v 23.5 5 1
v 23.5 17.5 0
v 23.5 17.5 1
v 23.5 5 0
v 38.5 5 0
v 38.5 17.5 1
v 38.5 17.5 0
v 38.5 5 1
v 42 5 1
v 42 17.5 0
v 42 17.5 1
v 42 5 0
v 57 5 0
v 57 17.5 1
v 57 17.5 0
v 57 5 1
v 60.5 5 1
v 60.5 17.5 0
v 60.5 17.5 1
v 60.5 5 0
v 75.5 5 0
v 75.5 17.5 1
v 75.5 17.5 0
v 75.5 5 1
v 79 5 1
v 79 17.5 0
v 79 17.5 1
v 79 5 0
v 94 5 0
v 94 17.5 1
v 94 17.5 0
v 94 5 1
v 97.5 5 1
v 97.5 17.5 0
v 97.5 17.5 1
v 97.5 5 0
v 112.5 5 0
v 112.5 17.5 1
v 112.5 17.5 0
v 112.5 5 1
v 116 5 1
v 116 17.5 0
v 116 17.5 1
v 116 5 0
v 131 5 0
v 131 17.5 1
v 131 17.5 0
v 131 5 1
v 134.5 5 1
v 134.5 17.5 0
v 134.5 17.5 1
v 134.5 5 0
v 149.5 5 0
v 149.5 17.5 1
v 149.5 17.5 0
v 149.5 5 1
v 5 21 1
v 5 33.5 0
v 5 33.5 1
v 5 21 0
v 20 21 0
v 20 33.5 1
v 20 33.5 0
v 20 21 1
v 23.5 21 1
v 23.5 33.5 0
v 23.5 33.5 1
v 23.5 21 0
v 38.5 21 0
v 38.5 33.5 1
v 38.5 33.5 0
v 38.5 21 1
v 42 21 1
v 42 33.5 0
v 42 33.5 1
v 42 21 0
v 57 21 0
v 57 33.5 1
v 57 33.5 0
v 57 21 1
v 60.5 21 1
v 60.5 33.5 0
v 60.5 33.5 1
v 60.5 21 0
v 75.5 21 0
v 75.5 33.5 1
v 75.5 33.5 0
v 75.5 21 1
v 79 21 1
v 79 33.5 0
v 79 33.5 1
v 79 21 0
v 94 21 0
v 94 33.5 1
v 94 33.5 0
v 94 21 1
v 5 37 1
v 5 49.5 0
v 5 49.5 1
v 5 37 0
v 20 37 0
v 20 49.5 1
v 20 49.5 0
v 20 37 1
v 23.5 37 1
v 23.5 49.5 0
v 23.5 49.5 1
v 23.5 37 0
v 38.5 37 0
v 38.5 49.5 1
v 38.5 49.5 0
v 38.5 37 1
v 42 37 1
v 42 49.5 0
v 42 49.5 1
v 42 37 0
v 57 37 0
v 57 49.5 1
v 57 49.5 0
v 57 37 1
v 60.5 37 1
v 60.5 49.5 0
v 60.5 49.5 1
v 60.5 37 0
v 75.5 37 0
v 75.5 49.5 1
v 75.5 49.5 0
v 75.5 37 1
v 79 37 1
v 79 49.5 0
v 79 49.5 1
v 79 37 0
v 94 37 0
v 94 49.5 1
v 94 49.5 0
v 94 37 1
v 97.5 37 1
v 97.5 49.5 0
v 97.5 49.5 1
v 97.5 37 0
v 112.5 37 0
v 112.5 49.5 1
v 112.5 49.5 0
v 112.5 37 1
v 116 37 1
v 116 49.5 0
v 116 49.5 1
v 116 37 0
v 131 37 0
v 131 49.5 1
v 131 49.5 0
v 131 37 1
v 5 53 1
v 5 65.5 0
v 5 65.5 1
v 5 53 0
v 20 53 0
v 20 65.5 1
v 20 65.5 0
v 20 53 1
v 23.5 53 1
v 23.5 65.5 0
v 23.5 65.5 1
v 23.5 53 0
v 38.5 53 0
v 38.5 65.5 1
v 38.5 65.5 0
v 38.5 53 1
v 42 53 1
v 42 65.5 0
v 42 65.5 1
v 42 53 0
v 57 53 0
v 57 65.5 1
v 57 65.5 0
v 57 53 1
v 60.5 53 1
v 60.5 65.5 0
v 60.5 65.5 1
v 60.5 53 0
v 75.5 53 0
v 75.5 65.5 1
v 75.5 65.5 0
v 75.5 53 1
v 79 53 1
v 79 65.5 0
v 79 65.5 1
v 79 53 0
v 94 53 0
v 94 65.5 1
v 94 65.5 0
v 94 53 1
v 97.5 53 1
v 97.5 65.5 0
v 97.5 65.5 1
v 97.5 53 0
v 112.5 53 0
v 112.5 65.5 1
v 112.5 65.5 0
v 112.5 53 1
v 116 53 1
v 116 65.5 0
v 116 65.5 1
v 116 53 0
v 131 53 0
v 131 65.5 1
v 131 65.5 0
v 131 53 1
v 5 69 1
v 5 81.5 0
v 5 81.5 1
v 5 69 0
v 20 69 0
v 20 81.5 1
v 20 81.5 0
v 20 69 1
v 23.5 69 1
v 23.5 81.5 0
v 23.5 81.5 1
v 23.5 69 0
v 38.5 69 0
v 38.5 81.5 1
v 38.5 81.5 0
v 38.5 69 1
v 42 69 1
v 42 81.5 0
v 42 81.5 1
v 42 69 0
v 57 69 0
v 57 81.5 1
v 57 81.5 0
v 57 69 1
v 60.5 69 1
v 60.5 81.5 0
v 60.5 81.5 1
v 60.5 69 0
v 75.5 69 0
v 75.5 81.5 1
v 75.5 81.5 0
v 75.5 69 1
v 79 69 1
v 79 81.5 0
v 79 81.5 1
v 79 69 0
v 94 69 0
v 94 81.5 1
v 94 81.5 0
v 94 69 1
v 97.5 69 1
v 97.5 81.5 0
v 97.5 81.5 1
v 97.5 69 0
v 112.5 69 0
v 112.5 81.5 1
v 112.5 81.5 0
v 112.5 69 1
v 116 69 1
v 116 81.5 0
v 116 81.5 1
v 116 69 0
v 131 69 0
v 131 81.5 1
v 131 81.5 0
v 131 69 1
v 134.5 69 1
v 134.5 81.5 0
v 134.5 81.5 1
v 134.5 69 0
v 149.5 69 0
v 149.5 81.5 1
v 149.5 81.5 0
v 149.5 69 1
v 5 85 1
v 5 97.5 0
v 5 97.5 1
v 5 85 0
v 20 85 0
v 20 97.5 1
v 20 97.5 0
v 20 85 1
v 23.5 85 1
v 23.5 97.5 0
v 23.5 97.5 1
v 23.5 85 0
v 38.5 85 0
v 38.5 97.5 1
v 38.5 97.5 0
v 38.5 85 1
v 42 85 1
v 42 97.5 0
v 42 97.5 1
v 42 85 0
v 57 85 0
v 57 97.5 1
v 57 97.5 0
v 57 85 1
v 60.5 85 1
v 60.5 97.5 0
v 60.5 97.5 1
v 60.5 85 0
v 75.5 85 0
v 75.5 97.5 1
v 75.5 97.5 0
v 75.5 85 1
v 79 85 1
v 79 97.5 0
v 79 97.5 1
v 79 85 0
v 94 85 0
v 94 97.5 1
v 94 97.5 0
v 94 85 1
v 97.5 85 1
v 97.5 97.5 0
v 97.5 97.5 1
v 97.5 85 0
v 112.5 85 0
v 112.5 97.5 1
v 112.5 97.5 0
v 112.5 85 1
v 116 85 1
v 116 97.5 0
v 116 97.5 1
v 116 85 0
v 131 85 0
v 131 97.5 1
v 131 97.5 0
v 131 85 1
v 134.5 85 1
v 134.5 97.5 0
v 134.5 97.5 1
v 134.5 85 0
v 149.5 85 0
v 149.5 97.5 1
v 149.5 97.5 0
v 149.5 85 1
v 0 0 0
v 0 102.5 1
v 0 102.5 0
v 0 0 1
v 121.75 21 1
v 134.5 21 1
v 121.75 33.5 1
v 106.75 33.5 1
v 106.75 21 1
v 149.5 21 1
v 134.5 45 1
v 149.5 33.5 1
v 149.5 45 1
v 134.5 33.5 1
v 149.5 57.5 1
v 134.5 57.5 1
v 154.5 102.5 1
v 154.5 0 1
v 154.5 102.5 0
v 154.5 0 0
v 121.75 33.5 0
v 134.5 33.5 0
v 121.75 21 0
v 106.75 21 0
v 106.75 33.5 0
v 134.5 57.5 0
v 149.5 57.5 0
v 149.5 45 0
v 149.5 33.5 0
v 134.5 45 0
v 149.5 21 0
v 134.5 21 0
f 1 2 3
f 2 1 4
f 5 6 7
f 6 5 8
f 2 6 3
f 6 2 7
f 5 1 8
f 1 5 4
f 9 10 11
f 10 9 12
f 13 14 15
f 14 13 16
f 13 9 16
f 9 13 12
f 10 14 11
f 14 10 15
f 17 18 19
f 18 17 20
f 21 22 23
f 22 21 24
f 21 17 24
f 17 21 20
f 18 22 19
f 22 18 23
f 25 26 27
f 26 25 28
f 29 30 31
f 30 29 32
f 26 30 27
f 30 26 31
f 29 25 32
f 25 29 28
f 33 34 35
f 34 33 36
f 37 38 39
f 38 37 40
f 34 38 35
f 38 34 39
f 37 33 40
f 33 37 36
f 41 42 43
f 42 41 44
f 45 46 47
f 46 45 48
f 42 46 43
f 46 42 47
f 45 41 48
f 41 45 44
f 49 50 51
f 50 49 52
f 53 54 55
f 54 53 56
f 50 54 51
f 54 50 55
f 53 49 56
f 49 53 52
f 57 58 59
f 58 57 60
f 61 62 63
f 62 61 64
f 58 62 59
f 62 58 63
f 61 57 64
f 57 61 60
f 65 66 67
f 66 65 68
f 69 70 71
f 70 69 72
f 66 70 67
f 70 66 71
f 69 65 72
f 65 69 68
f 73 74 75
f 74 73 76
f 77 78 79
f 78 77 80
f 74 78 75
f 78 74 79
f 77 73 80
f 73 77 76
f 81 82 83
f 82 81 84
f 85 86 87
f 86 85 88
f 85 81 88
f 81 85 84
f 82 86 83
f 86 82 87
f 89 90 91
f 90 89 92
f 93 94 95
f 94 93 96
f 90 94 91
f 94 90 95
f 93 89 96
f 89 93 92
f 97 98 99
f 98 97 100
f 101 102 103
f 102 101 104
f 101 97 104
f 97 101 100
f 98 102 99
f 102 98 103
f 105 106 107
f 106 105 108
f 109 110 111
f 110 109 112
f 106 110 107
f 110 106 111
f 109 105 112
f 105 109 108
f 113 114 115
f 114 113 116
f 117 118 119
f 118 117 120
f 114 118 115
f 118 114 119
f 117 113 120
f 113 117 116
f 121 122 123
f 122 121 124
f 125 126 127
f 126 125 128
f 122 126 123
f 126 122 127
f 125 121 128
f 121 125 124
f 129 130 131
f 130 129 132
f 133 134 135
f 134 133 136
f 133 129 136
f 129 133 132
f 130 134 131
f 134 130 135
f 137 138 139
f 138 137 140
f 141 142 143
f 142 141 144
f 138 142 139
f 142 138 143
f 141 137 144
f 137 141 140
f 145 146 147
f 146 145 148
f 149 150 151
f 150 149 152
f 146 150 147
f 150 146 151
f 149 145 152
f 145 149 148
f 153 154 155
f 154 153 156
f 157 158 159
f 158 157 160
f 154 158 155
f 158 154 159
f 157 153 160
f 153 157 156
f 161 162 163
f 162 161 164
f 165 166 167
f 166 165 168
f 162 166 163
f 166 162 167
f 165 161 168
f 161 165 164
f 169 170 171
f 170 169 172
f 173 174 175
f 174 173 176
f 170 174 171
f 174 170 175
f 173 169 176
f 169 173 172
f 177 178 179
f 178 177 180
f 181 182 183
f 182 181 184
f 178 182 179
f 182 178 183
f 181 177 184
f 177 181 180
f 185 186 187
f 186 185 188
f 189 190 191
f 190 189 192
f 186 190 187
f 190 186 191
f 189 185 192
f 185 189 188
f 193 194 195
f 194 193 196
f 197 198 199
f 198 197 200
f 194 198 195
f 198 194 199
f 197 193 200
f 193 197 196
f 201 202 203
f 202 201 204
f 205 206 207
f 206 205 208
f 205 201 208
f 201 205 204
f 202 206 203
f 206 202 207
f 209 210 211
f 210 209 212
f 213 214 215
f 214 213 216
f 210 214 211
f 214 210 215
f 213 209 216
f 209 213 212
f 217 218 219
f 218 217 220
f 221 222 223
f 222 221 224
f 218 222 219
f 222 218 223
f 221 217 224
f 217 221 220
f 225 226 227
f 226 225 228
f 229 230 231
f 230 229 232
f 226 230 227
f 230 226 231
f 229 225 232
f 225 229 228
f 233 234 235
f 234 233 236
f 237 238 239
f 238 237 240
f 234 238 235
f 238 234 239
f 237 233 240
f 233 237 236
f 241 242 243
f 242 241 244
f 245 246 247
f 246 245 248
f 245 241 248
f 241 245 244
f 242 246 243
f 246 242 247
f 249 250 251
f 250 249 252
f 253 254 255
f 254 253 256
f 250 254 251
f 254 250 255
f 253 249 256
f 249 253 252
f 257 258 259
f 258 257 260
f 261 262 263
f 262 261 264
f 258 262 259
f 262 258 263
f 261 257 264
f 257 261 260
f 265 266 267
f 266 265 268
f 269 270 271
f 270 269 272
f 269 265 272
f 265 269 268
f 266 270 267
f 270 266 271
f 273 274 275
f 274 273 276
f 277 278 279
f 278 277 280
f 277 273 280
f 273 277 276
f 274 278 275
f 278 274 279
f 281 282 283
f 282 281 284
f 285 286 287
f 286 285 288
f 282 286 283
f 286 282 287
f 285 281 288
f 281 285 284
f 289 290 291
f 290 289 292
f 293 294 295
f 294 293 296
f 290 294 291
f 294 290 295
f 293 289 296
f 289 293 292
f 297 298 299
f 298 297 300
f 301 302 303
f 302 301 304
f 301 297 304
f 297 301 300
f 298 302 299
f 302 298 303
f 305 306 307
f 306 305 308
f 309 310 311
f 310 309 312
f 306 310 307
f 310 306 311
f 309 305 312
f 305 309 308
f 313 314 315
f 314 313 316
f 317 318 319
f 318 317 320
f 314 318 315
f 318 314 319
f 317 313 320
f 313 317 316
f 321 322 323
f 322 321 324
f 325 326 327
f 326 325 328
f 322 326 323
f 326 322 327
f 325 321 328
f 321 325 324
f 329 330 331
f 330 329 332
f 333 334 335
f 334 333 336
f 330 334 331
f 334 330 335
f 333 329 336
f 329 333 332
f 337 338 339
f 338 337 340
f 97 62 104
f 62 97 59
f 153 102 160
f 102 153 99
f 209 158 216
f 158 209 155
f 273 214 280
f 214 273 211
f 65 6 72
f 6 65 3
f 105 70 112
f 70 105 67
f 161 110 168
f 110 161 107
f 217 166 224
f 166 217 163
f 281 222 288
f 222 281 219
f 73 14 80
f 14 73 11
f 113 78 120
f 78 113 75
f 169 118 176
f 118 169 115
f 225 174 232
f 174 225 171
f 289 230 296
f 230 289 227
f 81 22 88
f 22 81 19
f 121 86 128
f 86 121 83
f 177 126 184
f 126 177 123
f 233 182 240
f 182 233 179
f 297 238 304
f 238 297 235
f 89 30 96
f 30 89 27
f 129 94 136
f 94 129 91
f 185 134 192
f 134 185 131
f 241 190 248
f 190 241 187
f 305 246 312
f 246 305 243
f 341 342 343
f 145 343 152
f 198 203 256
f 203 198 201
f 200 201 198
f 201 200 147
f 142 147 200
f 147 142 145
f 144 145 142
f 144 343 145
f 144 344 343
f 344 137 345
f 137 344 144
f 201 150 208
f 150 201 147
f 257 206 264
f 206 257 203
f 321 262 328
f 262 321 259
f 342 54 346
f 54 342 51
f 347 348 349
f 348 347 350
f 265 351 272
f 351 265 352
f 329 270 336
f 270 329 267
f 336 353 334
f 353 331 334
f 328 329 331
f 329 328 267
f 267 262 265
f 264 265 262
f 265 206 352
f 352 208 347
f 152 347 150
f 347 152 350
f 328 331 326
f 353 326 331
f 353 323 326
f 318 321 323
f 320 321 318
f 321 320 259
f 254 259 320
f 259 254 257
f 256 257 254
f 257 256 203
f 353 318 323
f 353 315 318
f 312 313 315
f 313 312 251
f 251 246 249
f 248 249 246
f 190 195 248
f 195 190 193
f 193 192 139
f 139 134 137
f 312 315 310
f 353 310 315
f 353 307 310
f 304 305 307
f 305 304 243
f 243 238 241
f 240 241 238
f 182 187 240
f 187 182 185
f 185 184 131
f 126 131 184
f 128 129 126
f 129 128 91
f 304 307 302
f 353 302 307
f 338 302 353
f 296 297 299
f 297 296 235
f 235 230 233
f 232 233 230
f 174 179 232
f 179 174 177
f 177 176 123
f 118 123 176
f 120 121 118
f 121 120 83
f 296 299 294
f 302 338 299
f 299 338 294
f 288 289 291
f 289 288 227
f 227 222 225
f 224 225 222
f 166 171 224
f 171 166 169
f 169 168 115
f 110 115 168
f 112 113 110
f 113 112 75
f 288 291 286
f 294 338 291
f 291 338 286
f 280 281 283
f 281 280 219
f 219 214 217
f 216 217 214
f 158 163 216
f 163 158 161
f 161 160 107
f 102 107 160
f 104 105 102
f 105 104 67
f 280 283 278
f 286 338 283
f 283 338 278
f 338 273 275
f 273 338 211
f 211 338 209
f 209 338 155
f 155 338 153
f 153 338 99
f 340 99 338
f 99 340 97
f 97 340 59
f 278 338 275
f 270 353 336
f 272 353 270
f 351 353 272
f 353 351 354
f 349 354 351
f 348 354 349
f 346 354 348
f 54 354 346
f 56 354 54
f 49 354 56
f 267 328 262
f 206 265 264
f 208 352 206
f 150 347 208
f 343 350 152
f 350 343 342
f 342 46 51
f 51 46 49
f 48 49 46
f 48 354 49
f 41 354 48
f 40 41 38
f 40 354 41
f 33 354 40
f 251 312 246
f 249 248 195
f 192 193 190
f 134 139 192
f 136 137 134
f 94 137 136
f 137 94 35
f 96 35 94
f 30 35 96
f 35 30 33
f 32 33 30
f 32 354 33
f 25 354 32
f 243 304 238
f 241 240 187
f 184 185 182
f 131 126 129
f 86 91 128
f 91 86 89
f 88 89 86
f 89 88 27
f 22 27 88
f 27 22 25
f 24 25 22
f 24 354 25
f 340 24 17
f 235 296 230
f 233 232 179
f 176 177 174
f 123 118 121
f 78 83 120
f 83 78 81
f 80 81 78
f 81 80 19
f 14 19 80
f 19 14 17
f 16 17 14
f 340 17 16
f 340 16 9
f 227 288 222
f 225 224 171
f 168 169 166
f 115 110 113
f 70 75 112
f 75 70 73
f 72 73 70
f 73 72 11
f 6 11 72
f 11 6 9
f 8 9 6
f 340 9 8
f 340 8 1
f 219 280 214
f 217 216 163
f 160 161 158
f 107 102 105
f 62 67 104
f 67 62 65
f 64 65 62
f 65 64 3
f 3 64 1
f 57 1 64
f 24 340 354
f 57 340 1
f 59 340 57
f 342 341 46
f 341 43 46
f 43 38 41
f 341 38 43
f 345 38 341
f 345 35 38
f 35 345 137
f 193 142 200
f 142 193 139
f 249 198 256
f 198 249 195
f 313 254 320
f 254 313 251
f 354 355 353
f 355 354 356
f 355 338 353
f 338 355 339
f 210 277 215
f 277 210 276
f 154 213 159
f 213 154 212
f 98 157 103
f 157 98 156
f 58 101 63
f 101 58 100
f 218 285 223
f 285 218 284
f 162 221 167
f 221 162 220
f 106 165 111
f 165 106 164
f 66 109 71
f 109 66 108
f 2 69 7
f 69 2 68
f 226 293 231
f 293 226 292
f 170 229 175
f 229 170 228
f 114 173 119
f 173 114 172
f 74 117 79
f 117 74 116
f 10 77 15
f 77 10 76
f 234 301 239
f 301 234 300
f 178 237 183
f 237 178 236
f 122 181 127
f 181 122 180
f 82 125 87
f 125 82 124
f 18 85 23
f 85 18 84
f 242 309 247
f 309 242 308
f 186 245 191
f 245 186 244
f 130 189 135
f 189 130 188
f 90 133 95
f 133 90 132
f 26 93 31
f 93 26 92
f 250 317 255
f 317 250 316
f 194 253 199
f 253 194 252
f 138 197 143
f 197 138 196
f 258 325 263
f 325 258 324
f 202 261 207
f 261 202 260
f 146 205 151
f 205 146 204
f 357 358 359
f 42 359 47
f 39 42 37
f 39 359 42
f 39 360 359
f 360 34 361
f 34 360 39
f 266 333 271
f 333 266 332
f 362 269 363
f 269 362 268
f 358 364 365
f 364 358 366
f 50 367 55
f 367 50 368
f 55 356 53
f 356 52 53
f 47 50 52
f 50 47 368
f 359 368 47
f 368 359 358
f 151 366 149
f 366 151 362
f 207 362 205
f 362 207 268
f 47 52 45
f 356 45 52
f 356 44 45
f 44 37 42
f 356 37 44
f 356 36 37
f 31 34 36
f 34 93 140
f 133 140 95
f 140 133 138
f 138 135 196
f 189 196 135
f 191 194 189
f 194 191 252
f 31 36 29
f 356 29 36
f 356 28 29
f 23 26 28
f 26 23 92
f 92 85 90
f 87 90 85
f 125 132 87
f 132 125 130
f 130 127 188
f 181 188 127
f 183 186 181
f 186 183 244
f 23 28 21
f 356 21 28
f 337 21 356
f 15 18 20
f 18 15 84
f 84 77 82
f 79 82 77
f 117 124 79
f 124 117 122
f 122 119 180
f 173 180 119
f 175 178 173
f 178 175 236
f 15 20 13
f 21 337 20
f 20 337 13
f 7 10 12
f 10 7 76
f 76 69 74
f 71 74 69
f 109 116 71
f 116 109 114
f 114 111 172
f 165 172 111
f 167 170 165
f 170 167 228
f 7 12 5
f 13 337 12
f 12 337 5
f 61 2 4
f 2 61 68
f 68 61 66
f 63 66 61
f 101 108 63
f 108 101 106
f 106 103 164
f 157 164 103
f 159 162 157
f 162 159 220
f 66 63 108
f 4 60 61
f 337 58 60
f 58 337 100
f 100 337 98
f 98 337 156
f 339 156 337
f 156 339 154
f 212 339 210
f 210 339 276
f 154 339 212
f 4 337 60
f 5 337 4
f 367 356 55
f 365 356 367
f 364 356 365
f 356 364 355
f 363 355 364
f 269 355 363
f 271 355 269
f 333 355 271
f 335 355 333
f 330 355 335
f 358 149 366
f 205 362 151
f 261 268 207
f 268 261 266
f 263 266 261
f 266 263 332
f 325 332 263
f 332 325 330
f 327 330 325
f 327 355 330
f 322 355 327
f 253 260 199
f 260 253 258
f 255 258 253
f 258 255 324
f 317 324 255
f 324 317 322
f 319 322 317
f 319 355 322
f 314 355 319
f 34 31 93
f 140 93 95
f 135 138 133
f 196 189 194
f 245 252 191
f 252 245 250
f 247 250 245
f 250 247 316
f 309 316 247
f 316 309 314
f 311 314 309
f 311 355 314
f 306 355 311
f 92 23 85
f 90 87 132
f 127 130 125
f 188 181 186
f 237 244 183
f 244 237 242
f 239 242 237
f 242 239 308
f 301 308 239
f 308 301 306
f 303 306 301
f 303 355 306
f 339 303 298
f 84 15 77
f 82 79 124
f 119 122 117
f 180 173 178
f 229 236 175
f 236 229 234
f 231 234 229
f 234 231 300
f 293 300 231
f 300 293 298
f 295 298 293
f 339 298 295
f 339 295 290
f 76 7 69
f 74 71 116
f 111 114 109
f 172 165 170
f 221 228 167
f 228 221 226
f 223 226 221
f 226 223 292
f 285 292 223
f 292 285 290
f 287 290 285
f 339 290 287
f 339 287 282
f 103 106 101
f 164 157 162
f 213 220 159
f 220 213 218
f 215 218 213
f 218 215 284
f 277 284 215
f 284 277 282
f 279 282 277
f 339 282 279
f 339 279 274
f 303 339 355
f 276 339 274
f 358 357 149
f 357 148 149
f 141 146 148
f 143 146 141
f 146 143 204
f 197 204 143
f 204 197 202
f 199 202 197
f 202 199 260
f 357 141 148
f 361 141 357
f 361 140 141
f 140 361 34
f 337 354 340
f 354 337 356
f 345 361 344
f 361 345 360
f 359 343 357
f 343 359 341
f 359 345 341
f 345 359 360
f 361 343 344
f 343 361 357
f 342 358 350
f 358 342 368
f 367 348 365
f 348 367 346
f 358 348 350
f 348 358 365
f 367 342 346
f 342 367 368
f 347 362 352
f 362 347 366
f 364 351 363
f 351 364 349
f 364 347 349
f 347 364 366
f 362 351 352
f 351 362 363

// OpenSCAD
/* ModuleB
 * All keyholes made. Should be valid for creation.
 */

keyCols = 8;
keyRows = 6;
keyX = 15;
keyY = 12.5;
keySpace = 3.5;
edgeSpace = 5-keySpace;
keyZ = -1;

moduleX = (edgeSpace+5)+(keySpace*keyCols)+keyX*(keyCols-1)+keyX;
moduleY = (edgeSpace+5)+(keySpace*keyRows)+keyY*(keyRows-1)+keyY;
moduleZ = 1;

keySize = [keyX, keyY, moduleZ+2];

function position(x,y,z) = [edgeSpace+keySpace*x+keyX*(x-1), edgeSpace+keySpace*y+keyY*(y-1), z];

module keyHoles (yStart, yEnd, xStart, xEnd){
    for(y = [yStart:yEnd]){
        for(x = [xStart:xEnd]){
			translate(position(x,y,keyZ)) cube(keySize);
        }
    }
}

difference(){
    cube([moduleX,moduleY,moduleZ]);

	keyHoles(1,1,2,8);

	keyHoles(2,2,1,5);
	keyHoles(2,2,6.5,6.5);
	keyHoles(2,2,8,8);

	keyHoles(3,4,1,7);
	keyHoles(3.5,3.5,8,8);

	keyHoles(5,6,1,8);
}
